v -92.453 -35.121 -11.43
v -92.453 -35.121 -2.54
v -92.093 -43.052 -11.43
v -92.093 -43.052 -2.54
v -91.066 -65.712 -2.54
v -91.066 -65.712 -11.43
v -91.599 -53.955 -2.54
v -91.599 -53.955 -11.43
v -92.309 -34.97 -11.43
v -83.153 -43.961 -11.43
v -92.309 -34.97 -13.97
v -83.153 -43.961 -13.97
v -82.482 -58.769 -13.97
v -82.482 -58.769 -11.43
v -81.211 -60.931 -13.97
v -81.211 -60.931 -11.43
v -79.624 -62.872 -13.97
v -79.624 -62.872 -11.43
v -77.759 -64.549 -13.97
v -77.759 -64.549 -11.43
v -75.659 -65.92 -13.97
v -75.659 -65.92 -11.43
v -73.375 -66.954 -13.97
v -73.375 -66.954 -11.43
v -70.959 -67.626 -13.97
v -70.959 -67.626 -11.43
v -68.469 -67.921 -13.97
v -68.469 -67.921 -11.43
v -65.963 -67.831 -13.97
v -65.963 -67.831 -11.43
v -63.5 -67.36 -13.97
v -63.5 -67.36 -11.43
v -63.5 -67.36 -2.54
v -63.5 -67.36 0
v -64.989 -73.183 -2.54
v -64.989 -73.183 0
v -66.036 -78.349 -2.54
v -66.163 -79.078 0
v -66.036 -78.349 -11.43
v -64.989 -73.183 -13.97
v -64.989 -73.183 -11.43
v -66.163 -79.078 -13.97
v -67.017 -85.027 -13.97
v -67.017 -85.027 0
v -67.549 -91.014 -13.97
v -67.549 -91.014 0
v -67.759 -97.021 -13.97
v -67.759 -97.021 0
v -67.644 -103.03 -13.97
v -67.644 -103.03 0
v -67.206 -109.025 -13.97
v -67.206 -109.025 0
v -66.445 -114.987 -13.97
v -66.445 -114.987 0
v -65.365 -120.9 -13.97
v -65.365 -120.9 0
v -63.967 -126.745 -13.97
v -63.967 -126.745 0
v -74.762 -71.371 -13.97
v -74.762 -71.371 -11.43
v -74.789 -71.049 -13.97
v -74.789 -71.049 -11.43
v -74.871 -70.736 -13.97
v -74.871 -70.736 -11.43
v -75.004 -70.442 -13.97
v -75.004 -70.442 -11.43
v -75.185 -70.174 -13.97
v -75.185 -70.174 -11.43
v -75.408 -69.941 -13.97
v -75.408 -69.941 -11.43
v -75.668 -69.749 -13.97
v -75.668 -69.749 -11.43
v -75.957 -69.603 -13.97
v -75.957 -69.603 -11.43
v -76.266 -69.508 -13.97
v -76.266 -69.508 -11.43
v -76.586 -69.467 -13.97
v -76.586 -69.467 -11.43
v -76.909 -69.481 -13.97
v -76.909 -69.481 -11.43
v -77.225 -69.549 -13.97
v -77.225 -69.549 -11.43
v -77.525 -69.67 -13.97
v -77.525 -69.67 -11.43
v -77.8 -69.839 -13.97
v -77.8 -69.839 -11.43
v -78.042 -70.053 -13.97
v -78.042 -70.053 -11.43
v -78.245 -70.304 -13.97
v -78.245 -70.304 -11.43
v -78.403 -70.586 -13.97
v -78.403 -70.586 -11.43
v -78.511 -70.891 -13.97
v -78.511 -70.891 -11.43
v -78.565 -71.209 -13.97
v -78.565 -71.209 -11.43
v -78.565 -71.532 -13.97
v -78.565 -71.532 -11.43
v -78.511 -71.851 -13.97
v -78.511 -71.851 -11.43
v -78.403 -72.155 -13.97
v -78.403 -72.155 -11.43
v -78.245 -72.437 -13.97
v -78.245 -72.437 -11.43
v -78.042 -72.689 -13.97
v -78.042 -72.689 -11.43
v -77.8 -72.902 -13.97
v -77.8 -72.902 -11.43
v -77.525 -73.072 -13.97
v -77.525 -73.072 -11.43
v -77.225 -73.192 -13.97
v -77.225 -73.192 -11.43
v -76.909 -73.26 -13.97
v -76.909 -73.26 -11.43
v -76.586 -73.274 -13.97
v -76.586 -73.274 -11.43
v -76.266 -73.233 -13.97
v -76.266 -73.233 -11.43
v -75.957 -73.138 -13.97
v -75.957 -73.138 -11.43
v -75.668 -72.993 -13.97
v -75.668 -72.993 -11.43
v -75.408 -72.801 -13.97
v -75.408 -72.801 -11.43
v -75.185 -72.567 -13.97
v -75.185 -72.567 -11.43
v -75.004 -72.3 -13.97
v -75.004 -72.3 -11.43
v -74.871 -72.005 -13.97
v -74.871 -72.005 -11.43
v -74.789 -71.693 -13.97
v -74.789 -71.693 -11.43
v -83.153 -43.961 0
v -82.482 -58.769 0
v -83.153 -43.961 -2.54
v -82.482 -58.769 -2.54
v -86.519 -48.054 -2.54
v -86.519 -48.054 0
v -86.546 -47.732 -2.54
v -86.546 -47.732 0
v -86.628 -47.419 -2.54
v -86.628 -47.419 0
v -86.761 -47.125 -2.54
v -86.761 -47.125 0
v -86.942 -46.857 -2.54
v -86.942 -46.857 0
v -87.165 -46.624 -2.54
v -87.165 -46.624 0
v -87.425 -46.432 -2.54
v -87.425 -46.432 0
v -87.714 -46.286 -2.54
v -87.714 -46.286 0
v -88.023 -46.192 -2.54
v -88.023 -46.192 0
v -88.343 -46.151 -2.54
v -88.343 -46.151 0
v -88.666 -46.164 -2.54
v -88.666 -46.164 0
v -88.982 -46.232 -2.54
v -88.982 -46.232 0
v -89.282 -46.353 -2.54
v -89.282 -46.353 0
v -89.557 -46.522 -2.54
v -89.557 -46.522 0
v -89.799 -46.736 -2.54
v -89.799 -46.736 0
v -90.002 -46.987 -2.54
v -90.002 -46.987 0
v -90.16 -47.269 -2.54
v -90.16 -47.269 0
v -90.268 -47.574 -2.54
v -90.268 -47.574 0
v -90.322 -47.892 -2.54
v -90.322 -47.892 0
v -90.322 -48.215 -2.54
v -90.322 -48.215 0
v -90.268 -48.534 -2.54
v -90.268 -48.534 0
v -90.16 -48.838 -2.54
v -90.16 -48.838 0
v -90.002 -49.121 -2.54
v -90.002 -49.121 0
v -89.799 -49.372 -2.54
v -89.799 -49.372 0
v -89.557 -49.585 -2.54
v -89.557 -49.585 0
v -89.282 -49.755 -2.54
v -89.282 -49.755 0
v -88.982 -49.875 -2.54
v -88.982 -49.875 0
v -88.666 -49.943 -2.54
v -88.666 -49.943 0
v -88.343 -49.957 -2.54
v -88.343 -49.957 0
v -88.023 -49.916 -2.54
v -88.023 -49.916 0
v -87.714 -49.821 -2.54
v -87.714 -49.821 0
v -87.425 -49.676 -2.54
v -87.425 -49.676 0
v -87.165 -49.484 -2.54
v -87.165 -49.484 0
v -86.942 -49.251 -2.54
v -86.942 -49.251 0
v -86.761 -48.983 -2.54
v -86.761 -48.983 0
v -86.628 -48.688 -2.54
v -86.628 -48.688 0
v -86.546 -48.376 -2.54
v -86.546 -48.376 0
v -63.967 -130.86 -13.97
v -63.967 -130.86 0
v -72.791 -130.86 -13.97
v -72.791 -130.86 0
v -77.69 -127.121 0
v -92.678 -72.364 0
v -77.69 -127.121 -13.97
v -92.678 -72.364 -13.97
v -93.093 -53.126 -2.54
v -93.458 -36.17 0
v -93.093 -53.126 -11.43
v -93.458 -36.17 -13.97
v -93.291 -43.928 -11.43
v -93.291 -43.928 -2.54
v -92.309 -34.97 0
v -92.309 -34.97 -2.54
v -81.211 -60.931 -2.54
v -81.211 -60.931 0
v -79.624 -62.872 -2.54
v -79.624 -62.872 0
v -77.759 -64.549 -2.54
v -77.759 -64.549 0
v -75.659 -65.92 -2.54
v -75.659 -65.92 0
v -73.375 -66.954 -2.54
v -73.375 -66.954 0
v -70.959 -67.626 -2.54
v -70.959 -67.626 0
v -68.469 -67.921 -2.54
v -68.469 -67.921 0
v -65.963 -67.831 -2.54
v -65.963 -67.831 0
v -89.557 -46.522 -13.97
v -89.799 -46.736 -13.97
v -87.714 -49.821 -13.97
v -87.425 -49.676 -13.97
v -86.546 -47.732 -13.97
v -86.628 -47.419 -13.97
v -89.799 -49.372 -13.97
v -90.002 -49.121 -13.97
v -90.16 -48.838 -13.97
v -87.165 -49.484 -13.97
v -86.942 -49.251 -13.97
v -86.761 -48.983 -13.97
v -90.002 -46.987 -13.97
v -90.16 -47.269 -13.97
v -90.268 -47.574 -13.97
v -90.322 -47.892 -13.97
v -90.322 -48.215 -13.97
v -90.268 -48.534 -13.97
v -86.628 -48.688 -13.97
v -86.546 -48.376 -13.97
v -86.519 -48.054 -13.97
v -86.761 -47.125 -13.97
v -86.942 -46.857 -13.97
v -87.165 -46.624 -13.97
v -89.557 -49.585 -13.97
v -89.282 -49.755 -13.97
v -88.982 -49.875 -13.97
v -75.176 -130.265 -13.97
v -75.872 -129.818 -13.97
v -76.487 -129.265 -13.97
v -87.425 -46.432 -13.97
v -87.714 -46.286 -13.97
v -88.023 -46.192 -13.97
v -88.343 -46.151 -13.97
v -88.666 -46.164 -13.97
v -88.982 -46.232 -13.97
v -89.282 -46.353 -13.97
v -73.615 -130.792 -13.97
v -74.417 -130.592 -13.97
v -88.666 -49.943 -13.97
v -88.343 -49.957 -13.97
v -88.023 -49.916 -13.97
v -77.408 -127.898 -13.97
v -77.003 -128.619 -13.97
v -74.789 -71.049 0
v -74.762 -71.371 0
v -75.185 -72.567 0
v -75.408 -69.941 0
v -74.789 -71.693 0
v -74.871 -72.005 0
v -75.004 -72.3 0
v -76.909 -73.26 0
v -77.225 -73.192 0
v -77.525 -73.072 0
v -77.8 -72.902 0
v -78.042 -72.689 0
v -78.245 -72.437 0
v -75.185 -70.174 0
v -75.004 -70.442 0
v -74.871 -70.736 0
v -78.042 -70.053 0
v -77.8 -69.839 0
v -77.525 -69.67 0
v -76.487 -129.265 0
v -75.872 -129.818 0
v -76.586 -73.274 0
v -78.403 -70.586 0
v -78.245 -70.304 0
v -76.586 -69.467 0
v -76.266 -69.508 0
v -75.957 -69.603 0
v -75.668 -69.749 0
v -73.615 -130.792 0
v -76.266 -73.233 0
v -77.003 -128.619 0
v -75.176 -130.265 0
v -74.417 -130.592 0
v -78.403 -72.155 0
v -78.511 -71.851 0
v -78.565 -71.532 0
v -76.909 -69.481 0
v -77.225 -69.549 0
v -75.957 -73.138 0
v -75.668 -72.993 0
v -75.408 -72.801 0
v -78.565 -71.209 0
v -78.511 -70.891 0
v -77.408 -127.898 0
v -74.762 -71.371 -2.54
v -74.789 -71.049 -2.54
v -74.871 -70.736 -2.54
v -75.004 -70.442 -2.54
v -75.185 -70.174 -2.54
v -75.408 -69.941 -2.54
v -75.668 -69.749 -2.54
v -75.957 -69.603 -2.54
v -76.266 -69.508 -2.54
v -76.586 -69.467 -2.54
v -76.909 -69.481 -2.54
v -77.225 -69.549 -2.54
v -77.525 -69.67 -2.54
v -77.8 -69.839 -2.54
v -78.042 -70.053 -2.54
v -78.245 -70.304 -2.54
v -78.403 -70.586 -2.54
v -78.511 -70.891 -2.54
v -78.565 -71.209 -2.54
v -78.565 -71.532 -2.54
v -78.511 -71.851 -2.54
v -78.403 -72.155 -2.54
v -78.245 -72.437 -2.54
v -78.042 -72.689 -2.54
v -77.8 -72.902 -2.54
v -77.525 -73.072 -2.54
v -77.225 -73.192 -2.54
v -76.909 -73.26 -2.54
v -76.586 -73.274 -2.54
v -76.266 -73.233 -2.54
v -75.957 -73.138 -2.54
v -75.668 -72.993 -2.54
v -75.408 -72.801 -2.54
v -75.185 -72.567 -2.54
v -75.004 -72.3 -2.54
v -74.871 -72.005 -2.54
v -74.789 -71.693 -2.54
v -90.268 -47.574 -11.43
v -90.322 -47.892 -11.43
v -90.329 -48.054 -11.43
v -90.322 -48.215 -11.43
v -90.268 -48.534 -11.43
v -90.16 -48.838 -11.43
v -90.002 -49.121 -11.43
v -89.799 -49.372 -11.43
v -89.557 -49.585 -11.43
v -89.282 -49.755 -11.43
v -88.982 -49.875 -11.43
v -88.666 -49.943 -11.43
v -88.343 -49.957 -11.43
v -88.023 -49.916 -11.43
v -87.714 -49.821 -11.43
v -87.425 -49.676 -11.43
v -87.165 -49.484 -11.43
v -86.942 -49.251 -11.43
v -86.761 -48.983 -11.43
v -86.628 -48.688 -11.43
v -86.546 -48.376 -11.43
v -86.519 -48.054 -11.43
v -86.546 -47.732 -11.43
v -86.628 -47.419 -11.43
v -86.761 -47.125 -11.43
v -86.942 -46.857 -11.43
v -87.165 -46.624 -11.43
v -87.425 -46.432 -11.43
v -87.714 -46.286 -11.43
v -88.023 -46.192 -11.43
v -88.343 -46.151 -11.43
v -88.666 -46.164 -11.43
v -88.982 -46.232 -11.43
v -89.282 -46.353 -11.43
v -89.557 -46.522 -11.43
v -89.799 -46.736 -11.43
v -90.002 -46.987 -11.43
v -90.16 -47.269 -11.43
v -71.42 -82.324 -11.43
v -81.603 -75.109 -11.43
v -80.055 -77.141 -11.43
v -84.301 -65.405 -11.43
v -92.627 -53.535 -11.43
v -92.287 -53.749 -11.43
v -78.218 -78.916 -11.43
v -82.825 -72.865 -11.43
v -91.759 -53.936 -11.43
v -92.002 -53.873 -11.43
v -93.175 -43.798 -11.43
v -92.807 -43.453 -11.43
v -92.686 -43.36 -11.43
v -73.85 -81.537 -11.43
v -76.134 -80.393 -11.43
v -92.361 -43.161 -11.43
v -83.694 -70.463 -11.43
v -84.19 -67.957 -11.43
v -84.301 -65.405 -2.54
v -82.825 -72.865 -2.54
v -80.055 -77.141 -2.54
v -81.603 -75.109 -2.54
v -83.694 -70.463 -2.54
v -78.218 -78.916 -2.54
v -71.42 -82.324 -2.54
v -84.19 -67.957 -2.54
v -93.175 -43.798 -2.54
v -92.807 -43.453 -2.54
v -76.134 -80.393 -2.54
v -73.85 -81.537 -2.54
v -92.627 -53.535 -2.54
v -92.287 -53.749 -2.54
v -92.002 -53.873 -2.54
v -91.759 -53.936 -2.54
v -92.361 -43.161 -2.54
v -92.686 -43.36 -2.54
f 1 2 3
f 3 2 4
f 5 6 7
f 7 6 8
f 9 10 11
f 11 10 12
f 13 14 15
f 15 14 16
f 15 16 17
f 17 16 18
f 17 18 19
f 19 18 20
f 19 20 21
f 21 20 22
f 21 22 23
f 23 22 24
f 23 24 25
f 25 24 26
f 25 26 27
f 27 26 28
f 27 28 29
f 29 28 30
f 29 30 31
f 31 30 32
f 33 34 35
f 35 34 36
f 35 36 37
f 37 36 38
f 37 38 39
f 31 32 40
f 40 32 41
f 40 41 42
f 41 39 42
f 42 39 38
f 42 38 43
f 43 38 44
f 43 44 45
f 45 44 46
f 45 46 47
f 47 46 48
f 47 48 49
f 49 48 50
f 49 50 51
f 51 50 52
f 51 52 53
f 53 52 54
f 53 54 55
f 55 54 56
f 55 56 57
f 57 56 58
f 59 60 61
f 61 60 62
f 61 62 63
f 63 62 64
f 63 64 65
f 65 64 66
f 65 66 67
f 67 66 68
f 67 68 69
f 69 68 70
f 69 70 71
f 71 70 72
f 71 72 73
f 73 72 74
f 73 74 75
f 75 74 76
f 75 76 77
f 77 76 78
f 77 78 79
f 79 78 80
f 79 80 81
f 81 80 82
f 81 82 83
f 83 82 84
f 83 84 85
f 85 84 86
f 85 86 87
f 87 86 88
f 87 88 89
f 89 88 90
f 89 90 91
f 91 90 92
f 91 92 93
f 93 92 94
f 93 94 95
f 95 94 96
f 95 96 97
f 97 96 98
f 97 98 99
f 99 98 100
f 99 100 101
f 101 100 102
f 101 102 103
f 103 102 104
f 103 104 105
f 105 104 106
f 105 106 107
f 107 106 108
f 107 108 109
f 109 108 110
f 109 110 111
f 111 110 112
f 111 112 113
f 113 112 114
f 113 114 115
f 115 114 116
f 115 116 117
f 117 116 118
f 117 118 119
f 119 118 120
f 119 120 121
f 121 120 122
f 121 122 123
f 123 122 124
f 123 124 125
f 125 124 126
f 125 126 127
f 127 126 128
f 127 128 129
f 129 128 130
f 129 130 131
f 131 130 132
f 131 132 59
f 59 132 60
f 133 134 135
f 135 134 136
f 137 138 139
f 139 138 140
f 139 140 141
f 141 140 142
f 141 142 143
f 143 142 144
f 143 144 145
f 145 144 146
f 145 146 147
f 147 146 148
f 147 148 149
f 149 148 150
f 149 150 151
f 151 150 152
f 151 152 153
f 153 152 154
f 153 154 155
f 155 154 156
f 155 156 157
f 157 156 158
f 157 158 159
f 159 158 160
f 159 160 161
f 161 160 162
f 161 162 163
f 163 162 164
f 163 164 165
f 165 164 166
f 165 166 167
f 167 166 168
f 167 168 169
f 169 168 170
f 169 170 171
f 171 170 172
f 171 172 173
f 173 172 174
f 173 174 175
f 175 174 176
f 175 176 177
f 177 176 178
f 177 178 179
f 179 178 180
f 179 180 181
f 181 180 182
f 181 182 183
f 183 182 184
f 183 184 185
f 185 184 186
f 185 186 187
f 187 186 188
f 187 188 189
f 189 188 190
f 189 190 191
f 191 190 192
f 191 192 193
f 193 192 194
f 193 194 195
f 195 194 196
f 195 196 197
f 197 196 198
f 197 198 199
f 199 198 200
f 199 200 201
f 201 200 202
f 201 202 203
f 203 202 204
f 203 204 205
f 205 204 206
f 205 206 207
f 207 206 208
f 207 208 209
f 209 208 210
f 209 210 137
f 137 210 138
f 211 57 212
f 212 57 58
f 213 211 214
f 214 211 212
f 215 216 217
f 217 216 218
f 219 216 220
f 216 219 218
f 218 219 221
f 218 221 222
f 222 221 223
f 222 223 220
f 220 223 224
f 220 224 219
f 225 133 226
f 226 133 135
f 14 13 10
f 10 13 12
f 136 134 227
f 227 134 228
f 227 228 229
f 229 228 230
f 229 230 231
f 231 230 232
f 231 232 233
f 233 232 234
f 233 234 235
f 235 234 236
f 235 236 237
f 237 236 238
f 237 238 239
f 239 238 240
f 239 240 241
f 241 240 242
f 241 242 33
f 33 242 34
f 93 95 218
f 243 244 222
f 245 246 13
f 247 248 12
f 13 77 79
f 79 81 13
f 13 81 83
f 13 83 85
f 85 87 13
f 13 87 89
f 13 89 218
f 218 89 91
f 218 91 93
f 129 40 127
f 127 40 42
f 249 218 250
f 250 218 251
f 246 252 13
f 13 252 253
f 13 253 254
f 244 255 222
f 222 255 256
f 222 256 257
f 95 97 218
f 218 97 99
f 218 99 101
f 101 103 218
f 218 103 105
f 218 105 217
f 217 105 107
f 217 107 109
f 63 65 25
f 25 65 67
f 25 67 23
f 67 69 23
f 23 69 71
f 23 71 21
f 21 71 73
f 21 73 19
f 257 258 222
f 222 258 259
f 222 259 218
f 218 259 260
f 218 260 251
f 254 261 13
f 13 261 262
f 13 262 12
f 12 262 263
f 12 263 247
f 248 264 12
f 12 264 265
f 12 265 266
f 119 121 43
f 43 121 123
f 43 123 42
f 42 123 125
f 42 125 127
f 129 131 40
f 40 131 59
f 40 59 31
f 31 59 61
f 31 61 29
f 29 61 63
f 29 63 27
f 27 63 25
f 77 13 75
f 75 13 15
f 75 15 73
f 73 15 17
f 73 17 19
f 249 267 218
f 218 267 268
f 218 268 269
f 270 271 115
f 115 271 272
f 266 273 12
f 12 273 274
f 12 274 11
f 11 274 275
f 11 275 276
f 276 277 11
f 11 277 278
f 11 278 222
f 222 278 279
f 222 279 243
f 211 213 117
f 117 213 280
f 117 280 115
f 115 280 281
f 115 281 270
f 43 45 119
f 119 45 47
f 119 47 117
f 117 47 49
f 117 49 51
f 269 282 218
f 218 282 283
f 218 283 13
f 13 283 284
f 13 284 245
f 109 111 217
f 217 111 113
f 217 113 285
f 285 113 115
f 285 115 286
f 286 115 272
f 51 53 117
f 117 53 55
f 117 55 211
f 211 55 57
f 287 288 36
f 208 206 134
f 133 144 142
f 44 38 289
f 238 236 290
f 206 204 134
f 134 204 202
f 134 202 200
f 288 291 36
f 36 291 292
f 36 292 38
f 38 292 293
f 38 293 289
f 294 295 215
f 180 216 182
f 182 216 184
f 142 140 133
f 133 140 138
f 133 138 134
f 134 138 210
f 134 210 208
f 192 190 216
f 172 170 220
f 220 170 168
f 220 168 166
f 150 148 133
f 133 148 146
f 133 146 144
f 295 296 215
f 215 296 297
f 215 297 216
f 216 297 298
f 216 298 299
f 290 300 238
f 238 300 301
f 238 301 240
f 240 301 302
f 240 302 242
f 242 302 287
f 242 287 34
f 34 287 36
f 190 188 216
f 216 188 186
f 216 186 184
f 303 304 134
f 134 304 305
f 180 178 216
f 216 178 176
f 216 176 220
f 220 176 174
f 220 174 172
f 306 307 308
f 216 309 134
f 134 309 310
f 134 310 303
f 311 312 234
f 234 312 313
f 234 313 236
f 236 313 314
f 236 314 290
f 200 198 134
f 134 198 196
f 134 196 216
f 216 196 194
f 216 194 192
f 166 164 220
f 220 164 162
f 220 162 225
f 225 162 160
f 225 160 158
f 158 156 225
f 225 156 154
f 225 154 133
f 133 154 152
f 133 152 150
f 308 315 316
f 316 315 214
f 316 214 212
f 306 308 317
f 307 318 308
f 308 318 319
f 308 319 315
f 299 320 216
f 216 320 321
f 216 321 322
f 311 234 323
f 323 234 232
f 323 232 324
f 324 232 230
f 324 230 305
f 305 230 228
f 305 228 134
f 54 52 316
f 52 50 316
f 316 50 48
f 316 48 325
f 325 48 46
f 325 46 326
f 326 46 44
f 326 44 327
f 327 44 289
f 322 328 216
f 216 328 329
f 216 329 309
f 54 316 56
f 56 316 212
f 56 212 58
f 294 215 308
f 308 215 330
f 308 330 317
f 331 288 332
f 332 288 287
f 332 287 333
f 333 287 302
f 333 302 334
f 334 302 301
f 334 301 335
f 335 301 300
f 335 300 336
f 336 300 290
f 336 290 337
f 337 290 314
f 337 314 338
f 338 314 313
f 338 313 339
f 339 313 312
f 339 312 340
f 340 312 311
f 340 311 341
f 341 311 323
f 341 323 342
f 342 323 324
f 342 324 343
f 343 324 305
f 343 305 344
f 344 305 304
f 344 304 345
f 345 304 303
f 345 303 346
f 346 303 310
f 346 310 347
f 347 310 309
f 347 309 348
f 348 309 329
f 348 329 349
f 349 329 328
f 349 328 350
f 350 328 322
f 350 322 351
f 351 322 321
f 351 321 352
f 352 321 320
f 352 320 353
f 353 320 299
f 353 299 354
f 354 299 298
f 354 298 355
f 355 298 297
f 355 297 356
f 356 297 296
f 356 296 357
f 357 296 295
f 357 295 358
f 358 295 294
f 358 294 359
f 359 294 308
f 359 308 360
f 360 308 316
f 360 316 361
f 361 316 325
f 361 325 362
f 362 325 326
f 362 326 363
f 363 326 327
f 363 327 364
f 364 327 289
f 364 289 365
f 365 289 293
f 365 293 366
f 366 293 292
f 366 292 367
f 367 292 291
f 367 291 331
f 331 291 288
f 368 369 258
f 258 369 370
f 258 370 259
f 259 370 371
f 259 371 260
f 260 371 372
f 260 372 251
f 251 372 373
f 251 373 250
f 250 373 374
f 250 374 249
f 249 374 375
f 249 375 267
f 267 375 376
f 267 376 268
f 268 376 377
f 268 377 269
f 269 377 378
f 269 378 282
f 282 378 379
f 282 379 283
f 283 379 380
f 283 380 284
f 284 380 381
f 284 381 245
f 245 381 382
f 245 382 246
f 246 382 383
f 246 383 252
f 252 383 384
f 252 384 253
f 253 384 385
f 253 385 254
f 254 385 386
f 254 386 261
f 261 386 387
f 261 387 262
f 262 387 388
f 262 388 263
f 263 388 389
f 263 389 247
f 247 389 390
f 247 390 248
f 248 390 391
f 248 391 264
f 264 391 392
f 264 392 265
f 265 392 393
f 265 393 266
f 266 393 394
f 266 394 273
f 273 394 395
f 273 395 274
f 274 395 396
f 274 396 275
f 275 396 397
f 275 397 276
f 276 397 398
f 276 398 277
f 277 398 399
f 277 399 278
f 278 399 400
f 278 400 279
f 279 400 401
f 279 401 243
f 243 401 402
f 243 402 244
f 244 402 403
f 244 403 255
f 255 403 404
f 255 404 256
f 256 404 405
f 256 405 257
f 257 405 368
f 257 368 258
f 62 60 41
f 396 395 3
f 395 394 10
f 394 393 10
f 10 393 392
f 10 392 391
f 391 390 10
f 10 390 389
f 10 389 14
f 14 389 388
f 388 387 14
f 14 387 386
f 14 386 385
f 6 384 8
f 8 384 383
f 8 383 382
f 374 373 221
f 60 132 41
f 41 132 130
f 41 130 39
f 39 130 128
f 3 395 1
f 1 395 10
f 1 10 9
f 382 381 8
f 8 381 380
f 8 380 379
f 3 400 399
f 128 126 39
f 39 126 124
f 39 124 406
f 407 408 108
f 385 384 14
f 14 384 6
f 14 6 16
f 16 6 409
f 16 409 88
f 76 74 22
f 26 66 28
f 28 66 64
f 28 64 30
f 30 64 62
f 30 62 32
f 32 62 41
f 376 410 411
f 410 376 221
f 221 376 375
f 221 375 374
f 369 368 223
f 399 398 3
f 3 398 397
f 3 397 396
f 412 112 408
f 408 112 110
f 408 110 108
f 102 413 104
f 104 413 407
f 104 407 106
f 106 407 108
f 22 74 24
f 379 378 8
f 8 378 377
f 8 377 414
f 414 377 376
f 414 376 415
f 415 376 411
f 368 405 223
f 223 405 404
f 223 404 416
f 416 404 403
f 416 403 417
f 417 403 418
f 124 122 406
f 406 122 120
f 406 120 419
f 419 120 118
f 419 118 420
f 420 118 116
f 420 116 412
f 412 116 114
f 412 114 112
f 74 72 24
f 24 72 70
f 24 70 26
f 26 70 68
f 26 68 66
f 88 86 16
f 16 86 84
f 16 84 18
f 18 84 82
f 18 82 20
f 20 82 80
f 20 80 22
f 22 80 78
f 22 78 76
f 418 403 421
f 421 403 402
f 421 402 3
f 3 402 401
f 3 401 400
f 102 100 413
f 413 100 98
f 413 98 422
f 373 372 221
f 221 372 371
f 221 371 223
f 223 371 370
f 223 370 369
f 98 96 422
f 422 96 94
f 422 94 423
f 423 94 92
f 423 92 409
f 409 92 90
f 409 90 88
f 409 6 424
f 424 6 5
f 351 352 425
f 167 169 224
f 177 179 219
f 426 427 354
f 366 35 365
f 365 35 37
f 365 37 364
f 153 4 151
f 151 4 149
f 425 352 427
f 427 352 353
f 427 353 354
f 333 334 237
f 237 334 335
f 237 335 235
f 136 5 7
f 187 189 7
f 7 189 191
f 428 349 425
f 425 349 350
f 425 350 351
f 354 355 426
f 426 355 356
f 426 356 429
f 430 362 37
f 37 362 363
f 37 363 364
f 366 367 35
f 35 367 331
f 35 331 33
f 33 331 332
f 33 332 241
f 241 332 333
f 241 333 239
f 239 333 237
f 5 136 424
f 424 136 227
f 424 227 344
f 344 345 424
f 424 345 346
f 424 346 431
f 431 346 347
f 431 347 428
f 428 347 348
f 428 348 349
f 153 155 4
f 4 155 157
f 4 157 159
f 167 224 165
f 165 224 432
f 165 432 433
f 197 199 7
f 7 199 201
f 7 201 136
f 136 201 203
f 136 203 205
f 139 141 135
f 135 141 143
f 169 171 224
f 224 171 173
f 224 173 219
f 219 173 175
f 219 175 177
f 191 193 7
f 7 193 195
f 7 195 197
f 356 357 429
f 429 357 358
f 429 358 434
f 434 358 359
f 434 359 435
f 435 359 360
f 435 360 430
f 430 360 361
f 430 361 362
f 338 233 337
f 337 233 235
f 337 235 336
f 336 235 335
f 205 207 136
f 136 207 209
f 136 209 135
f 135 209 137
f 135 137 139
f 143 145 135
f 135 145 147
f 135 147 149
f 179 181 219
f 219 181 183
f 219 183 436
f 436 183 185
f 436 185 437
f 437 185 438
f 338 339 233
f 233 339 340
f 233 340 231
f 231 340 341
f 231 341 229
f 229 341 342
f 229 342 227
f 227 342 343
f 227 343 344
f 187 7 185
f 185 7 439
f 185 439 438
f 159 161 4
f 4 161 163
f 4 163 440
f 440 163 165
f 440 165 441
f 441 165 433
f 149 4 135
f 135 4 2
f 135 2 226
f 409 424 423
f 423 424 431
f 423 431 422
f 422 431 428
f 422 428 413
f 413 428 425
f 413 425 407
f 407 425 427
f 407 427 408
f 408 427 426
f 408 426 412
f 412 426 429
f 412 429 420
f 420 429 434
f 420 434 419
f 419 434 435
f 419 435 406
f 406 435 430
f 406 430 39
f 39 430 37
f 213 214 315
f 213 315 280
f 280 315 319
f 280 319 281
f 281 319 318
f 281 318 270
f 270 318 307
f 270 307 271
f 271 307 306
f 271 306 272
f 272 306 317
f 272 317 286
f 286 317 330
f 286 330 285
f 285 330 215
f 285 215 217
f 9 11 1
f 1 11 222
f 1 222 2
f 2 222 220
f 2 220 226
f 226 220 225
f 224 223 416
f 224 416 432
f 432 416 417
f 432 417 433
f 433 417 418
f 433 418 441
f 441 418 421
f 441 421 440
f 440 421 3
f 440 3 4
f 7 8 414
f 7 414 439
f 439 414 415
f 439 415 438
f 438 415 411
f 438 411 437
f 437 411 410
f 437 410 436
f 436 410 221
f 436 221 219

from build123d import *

# Parameters (mm, degrees)
SKETCH2_R           = 1.905
BOSS_EXTRUDE1_DEPTH = 13.97
SKETCH7_W           = 8.89
SKETCH7_H           = 13.736668288
CUT_EXTRUDE1_DEPTH  = 8.89
SKETCH8_W           = 15.99010018
SKETCH8_H           = 8.89
CUT_EXTRUDE2_DEPTH  = 38.354
CUT_EXTRUDE4_START  = -2.54
CUT_EXTRUDE4_DEPTH  = 8.89
FILLET1_R           = 5.08
CHAMFER1_SIZE       = 2.38
CHAMFER1_SIZE_2     = 1.683044883
CUT_EXTRUDE5_DEPTH  = 8.89


with BuildPart() as part:
    # Sketch2 → Boss-Extrude1 (new body)
    with BuildSketch(Plane.XY):
        with BuildLine():
            Line((-63.967060474, -130.859635454), (-76.667060474, -130.859635454))
            Line((-76.667060474, -130.859635454), (-92.67813479, -72.364175631))
            Line((-92.67813479, -72.364175631), (-93.509383851, -33.790725064))
            Line((-93.509383851, -33.790725064), (-83.152945307, -43.960741607))
            Line((-83.152945307, -43.960741607), (-82.481678491, -58.768900565))
            ThreePointArc((-82.481678491, -58.768900565), (-74.536997263, -66.480585097), (-63.5, -67.359635454))
            ThreePointArc((-63.5, -67.359635454), (-67.758675084, -97.020798424), (-63.967060474, -126.745275894))
            Line((-63.967060474, -126.745275894), (-63.967060474, -130.859635454))
        make_face()
        with Locations((-88.424072453, -48.053785371)):
            Circle(SKETCH2_R, mode=Mode.SUBTRACT)
        with Locations((-76.667060474, -71.37070905)):
            Circle(SKETCH2_R, mode=Mode.SUBTRACT)
    extrude(amount=-BOSS_EXTRUDE1_DEPTH)

    # Sketch7 → Cut-Extrude1 (cut)
    with BuildSketch(Plane(origin=(-84.97111807, -3.851815205, 0), x_dir=(0, 0, -1), z_dir=(0.9989741366022207, 0.04528437257871392, 0))):
        with Locations((6.985, -54.652422544)):
            Rectangle(SKETCH7_W, SKETCH7_H)
    extrude(amount=-CUT_EXTRUDE1_DEPTH, mode=Mode.SUBTRACT)

    # Sketch8 → Cut-Extrude2 (cut)
    with BuildSketch(Plane(origin=(2.163872462, -47.735068453, 0), x_dir=(0.9989741366022207, 0.04528437257871392, 0), z_dir=(0.04528437257871392, -0.9989741366022207, 0))):
        with Locations((-85.953326255, -6.985)):
            Rectangle(SKETCH8_W, SKETCH8_H)
    extrude(amount=-CUT_EXTRUDE2_DEPTH, mode=Mode.SUBTRACT)

    # Sketch9 → Cut-Extrude4 (cut)
    with BuildSketch(Plane.XY.offset(CUT_EXTRUDE4_START)):
        with BuildLine():
            Line((-82.481678491, -58.768900565), (-84.301115942, -65.397976437))
            ThreePointArc((-84.301115942, -65.397976437), (-80.869859076, -76.151152323), (-71.419742843, -82.323641162))
            Line((-71.419742843, -82.323641162), (-53.044010763, -68.759286996))
            Line((-53.044010763, -68.759286996), (-82.481678491, -58.768900565))
        make_face()
    extrude(amount=-CUT_EXTRUDE4_DEPTH, mode=Mode.SUBTRACT)

    # Fillet1
    fillet1_edges = [part.edges().sort_by_distance(p)[0] for p in [
        (-76.667060474, -130.859635454, -6.985),
    ]]
    fillet(fillet1_edges, radius=FILLET1_R)

    # Chamfer1
    # the kernel refuses this chamfer: 2.38, 1.683044883 mm, written as the material it takes off along each edge
    with BuildSketch(Plane(origin=(-93.509383851, -33.790725064, 6.120605511), x_dir=(-0.005952870242771505, -0.9999822815109639, 0), z_dir=(0, 0, -1))) as chamfer1_piece_1:
        Polygon((CHAMFER1_SIZE * 0.999621916911, -CHAMFER1_SIZE * 0.0274958766106), (CHAMFER1_SIZE_2 * 0.69639613284, -CHAMFER1_SIZE_2 * 0.717657596567), (0, 0), align=None)
    extrude(amount=26.211211023, mode=Mode.SUBTRACT)

    # Sketch10 → Cut-Extrude5 (cut)
    with BuildSketch(Plane.XY.offset(-11.43)):
        with BuildLine():
            add(Edge.make_bspline(
                [(-91.586396319, -42.98933193), (-93.184858066, -42.868299271), (-96.695097172, -48.735009259), (-91.017537843, -56.721704987), (-87.675016869, -48.216390701), (-90.229073725, -43.092105964), (-91.586396319, -42.98933193)],
                knots=[0, 0, 0, 0, 0.267383985, 0.513635097, 0.772952762, 1, 1, 1, 1], degree=3))
        make_face()
    extrude(amount=CUT_EXTRUDE5_DEPTH, mode=Mode.SUBTRACT)


solid = part.part
